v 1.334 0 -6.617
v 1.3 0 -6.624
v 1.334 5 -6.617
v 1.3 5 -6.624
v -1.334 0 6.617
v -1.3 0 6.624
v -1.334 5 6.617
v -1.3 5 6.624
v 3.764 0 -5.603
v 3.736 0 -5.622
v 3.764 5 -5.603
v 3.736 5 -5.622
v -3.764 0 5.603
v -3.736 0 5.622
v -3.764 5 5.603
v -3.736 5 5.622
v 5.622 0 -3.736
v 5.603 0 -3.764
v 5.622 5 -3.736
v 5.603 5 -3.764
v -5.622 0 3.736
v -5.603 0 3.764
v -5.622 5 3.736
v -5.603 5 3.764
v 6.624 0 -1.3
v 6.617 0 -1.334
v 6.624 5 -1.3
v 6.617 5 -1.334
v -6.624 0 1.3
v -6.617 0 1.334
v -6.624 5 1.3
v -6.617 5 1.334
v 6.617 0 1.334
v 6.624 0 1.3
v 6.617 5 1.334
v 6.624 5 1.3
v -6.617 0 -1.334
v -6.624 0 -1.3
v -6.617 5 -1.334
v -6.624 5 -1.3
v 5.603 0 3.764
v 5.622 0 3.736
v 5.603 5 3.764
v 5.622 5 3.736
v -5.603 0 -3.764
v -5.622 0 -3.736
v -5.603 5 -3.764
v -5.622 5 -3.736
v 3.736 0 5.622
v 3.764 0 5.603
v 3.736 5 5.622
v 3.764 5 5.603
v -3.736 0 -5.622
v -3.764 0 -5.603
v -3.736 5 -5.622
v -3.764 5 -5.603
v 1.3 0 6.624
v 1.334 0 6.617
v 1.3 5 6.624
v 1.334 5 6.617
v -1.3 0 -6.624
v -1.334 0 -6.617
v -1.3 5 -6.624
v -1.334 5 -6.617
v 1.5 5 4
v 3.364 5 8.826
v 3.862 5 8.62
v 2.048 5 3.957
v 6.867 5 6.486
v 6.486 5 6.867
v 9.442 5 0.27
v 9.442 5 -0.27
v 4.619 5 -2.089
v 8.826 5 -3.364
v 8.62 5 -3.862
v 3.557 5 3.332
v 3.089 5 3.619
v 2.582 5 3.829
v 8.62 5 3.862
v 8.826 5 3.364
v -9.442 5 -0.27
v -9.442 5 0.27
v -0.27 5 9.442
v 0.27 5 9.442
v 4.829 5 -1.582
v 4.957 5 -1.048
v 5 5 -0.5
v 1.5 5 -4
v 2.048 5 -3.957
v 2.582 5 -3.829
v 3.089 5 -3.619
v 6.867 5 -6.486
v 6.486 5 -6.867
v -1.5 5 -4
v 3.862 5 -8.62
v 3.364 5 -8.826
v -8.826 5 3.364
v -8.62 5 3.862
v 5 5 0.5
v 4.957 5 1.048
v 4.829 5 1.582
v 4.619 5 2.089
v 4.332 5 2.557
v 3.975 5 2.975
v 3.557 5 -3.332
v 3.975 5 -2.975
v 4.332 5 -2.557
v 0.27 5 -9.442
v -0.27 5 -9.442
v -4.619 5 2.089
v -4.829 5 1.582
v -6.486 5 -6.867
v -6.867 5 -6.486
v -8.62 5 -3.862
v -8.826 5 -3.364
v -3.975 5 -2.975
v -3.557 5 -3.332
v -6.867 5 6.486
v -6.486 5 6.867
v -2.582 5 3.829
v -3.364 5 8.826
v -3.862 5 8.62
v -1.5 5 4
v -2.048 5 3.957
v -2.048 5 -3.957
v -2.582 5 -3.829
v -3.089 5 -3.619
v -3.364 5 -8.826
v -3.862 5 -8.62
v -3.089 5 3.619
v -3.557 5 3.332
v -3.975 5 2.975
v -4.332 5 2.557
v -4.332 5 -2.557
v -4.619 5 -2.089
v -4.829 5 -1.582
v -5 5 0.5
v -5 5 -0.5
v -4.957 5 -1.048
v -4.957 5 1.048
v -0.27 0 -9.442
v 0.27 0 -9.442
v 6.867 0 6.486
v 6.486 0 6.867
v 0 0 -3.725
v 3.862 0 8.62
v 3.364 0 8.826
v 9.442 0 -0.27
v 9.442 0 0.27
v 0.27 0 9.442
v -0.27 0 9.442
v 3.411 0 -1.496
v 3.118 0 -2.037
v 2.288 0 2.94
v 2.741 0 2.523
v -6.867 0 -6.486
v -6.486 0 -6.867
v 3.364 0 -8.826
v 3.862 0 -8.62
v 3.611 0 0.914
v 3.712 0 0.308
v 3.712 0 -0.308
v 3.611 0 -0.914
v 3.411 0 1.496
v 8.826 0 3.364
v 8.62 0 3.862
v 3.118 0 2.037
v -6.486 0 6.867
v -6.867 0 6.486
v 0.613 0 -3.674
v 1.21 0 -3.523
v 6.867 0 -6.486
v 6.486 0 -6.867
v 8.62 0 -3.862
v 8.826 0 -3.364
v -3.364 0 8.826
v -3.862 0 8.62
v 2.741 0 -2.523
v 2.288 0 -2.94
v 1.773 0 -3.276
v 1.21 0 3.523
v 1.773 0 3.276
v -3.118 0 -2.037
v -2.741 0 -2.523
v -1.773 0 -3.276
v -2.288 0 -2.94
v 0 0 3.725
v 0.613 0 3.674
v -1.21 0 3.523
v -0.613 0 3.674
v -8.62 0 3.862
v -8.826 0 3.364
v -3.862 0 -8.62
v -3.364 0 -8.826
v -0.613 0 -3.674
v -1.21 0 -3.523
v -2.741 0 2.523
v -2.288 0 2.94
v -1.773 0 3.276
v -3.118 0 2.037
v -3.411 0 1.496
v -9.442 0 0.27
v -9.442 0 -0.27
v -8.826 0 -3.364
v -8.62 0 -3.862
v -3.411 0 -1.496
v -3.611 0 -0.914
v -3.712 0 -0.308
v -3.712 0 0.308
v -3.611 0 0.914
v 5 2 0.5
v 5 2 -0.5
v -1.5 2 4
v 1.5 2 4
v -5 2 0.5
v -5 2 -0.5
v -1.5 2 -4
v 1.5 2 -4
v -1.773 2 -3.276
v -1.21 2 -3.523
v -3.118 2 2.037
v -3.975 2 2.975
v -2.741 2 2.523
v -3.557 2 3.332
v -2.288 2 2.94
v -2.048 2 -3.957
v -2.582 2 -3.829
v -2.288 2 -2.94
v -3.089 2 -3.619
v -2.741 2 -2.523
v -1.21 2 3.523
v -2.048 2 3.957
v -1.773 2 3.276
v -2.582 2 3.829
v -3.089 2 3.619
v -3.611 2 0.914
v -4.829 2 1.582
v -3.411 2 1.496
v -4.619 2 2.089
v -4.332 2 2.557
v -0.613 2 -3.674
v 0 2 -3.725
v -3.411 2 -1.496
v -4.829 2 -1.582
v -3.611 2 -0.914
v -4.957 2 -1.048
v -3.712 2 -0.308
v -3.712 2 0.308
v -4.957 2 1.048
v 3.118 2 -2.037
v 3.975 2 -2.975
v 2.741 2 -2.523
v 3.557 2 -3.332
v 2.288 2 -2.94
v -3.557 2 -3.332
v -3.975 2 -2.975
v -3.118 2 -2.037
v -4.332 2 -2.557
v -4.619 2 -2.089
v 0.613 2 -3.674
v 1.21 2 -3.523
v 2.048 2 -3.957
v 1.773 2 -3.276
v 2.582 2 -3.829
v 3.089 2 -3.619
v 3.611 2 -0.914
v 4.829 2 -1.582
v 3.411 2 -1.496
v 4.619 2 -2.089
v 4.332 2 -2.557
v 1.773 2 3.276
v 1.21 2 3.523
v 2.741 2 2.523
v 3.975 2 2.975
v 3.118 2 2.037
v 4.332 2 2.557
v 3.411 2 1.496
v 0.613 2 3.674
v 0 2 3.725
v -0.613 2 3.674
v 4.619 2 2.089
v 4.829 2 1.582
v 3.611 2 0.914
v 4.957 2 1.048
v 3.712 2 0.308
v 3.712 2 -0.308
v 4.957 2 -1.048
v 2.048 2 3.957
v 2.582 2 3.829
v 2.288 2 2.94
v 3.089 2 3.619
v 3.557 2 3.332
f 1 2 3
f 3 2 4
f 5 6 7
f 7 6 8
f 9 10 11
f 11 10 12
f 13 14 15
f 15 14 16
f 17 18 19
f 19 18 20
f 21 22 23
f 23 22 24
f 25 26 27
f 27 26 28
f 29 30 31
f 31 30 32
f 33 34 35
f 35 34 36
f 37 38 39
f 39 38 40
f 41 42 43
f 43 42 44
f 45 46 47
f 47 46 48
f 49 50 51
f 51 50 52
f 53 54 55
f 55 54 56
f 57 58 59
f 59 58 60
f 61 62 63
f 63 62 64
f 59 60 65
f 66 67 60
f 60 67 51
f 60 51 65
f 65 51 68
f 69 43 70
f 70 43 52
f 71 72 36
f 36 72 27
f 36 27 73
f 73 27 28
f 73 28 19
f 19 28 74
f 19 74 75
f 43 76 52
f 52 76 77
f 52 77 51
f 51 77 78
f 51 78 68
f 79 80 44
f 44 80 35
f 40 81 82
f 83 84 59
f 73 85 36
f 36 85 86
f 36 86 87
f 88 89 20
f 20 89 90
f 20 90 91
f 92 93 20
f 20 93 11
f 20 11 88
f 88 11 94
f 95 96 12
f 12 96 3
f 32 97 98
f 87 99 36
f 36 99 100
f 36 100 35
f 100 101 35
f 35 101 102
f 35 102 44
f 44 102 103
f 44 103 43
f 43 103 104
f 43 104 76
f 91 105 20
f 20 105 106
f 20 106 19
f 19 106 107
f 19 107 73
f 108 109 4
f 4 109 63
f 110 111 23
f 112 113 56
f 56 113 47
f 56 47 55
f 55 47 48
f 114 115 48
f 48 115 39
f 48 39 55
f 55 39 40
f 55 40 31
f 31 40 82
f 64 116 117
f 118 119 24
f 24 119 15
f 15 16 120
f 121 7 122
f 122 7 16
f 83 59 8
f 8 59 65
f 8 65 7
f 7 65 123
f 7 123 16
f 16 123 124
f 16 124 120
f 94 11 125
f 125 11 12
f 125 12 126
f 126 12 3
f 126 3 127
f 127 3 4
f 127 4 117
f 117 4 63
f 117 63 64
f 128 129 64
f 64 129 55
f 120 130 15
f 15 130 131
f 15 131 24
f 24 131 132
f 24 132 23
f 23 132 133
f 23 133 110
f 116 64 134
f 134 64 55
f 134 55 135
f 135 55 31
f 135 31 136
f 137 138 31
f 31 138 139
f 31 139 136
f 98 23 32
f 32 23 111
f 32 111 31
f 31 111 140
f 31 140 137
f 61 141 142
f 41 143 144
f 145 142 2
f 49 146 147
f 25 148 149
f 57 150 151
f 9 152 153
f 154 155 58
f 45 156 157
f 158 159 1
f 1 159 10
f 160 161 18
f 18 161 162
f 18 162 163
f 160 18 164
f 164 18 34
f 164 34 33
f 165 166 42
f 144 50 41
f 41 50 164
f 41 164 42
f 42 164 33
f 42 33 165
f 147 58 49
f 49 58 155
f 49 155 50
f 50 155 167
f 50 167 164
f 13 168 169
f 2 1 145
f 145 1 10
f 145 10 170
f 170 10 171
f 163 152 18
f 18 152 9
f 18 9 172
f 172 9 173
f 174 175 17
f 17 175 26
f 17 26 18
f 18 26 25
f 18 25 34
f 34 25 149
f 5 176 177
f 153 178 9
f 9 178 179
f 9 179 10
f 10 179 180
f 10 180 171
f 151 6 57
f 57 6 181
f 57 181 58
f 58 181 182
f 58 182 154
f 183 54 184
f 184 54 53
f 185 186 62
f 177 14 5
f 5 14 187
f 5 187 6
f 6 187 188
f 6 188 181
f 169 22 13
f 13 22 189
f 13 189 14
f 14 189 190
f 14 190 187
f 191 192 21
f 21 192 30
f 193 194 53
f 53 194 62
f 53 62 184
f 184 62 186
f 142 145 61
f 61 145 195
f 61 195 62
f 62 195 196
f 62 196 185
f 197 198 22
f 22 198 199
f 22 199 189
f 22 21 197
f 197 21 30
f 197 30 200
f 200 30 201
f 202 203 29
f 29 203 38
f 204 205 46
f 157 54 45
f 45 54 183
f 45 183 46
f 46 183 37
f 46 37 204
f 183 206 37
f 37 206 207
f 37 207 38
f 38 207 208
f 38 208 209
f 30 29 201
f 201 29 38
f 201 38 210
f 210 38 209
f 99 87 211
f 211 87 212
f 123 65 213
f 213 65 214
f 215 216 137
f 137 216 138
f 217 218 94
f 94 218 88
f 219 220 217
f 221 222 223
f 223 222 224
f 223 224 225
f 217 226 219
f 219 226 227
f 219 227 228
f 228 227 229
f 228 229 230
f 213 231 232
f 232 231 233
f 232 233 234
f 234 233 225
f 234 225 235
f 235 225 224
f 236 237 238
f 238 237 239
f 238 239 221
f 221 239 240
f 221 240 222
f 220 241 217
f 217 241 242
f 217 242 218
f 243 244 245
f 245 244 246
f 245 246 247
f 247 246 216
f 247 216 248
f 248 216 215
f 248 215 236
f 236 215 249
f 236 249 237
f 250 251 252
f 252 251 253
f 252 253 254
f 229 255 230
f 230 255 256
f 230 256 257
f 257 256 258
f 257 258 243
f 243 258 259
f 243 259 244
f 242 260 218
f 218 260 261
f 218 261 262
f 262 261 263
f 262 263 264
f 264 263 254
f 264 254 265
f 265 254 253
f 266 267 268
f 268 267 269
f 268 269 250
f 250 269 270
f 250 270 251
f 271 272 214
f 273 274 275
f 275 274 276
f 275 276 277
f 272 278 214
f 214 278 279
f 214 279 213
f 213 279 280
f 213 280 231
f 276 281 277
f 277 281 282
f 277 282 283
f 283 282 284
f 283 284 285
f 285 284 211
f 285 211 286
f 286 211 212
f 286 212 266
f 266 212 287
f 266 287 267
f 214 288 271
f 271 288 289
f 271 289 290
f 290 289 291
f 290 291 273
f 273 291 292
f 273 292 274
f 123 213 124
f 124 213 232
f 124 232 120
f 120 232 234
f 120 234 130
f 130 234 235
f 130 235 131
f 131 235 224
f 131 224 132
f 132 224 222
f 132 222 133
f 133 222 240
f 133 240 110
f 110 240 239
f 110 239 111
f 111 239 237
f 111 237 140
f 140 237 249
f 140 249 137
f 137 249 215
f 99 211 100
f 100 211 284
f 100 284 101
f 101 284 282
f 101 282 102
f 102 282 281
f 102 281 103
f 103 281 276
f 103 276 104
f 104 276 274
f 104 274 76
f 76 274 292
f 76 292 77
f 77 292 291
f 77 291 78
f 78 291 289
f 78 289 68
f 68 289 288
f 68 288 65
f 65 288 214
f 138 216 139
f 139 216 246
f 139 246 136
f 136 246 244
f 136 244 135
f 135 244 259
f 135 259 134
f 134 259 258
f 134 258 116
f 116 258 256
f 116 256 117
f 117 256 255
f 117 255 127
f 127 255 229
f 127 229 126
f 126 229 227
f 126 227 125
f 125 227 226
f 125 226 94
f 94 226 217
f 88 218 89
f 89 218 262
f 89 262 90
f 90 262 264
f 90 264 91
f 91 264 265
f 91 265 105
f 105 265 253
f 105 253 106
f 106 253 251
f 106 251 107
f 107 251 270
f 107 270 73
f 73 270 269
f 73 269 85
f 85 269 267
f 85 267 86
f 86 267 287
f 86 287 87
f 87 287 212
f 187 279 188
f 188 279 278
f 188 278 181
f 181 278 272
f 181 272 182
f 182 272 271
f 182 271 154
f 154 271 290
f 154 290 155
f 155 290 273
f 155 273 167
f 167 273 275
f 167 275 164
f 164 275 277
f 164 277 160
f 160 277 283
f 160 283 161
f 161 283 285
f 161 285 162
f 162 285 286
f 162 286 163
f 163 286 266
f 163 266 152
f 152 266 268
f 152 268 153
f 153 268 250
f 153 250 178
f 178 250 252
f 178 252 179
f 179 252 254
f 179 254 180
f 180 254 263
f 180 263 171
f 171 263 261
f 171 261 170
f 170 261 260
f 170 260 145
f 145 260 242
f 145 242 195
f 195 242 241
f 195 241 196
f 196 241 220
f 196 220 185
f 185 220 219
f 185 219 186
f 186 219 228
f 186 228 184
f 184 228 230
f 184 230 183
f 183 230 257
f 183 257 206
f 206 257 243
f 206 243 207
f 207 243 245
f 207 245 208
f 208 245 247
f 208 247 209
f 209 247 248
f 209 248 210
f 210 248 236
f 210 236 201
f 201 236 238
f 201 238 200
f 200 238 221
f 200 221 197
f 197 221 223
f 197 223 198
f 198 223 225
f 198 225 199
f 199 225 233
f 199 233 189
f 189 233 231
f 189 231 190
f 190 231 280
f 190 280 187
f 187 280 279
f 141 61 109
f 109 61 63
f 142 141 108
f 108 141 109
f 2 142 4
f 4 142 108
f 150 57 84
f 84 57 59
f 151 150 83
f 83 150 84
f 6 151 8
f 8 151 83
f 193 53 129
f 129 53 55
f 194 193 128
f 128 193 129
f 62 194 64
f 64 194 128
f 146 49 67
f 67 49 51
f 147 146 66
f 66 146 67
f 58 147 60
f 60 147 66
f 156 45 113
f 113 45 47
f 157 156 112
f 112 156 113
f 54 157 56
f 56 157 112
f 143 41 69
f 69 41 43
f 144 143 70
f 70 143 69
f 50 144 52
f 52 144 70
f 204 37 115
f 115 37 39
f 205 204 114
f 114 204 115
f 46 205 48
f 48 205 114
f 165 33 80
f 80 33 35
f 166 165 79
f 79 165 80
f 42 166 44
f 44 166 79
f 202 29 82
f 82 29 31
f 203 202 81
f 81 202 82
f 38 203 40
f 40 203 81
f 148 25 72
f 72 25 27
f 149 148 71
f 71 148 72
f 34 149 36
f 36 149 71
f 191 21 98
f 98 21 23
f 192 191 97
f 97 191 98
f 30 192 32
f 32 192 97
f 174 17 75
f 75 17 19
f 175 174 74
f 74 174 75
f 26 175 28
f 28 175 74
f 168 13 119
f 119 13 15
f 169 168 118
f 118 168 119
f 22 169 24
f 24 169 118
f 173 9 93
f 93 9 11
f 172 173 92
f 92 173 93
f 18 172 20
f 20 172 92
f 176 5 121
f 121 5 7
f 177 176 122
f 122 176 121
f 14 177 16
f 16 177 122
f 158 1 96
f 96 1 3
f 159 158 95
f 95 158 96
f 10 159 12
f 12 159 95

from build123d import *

# Parameters (mm, degrees)
SKETCH2_R           = 6.75
BOSS_EXTRUDE1_DEPTH = 5
SKETCH3_W           = 10
SKETCH3_H           = 8
CUT_EXTRUDE1_DEPTH  = 3
FILLET1_R           = 3.5
SKETCH4_R           = 3.725
CUT_EXTRUDE2_DEPTH  = 11.006248048
BOSS_EXTRUDE2_DEPTH = 5
CIRPATTERN1_COUNT   = 16


with BuildPart() as part:
    # Sketch2 → Boss-Extrude1 (new body)
    with BuildSketch(Plane(origin=(0, 0, 0), x_dir=(1, 0, 0), z_dir=(0, 1, 0))):
        with Locations(Location((0, 0, 0), (0, 0, 270))):
            Circle(SKETCH2_R)
    extrude(amount=BOSS_EXTRUDE1_DEPTH)

    # Sketch3 → Cut-Extrude1 (cut)
    with BuildSketch(Plane(origin=(0, 5, 0), x_dir=(1, 0, 0), z_dir=(0, 1, 0))):
        Rectangle(SKETCH3_W, SKETCH3_H)
    extrude(amount=-CUT_EXTRUDE1_DEPTH, mode=Mode.SUBTRACT)

    # Fillet1
    fillet1_edges = [part.edges().sort_by_distance(p)[0] for p in [
        (5, 3.5, -4),
        (5, 3.5, 4),
        (-5, 3.5, 4),
        (-5, 3.5, -4),
    ]]
    fillet(fillet1_edges, radius=FILLET1_R)

    # Sketch4 → Cut-Extrude2 (cut, through all)
    with BuildSketch(Plane(origin=(0, 2, 0), x_dir=(1, 0, 0), z_dir=(0, 1, 0))):
        with Locations(Location((0, 0, 0), (0, 0, 270))):
            Circle(SKETCH4_R)
    extrude(amount=-CUT_EXTRUDE2_DEPTH, mode=Mode.SUBTRACT)

    # Sketch5 → Boss-Extrude2 (add)
    with BuildSketch(Plane(origin=(0, 5, 0), x_dir=(1, 0, 0), z_dir=(0, 1, 0))):
        Polygon((-1.300127145, 6.623606979), (-0.269661895, 9.441952037), (0.269661895, 9.441952037), (1.300127145, 6.623606979), align=None)
        Polygon((-0.269661895, -9.441952037), (-1.300127145, -6.623606979), (1.300127145, -6.623606979), (0.269661895, -9.441952037), align=None)
    boss_extrude2 = extrude(amount=-BOSS_EXTRUDE2_DEPTH)

    # CirPattern1: Boss-Extrude2 ×16 about axis
    cirpattern1_axis = Axis((0, 0, 0), (0, 1, 0))
    for i in range(1, CIRPATTERN1_COUNT):
        add(boss_extrude2.rotate(cirpattern1_axis, i * 360 / CIRPATTERN1_COUNT))


solid = part.part
